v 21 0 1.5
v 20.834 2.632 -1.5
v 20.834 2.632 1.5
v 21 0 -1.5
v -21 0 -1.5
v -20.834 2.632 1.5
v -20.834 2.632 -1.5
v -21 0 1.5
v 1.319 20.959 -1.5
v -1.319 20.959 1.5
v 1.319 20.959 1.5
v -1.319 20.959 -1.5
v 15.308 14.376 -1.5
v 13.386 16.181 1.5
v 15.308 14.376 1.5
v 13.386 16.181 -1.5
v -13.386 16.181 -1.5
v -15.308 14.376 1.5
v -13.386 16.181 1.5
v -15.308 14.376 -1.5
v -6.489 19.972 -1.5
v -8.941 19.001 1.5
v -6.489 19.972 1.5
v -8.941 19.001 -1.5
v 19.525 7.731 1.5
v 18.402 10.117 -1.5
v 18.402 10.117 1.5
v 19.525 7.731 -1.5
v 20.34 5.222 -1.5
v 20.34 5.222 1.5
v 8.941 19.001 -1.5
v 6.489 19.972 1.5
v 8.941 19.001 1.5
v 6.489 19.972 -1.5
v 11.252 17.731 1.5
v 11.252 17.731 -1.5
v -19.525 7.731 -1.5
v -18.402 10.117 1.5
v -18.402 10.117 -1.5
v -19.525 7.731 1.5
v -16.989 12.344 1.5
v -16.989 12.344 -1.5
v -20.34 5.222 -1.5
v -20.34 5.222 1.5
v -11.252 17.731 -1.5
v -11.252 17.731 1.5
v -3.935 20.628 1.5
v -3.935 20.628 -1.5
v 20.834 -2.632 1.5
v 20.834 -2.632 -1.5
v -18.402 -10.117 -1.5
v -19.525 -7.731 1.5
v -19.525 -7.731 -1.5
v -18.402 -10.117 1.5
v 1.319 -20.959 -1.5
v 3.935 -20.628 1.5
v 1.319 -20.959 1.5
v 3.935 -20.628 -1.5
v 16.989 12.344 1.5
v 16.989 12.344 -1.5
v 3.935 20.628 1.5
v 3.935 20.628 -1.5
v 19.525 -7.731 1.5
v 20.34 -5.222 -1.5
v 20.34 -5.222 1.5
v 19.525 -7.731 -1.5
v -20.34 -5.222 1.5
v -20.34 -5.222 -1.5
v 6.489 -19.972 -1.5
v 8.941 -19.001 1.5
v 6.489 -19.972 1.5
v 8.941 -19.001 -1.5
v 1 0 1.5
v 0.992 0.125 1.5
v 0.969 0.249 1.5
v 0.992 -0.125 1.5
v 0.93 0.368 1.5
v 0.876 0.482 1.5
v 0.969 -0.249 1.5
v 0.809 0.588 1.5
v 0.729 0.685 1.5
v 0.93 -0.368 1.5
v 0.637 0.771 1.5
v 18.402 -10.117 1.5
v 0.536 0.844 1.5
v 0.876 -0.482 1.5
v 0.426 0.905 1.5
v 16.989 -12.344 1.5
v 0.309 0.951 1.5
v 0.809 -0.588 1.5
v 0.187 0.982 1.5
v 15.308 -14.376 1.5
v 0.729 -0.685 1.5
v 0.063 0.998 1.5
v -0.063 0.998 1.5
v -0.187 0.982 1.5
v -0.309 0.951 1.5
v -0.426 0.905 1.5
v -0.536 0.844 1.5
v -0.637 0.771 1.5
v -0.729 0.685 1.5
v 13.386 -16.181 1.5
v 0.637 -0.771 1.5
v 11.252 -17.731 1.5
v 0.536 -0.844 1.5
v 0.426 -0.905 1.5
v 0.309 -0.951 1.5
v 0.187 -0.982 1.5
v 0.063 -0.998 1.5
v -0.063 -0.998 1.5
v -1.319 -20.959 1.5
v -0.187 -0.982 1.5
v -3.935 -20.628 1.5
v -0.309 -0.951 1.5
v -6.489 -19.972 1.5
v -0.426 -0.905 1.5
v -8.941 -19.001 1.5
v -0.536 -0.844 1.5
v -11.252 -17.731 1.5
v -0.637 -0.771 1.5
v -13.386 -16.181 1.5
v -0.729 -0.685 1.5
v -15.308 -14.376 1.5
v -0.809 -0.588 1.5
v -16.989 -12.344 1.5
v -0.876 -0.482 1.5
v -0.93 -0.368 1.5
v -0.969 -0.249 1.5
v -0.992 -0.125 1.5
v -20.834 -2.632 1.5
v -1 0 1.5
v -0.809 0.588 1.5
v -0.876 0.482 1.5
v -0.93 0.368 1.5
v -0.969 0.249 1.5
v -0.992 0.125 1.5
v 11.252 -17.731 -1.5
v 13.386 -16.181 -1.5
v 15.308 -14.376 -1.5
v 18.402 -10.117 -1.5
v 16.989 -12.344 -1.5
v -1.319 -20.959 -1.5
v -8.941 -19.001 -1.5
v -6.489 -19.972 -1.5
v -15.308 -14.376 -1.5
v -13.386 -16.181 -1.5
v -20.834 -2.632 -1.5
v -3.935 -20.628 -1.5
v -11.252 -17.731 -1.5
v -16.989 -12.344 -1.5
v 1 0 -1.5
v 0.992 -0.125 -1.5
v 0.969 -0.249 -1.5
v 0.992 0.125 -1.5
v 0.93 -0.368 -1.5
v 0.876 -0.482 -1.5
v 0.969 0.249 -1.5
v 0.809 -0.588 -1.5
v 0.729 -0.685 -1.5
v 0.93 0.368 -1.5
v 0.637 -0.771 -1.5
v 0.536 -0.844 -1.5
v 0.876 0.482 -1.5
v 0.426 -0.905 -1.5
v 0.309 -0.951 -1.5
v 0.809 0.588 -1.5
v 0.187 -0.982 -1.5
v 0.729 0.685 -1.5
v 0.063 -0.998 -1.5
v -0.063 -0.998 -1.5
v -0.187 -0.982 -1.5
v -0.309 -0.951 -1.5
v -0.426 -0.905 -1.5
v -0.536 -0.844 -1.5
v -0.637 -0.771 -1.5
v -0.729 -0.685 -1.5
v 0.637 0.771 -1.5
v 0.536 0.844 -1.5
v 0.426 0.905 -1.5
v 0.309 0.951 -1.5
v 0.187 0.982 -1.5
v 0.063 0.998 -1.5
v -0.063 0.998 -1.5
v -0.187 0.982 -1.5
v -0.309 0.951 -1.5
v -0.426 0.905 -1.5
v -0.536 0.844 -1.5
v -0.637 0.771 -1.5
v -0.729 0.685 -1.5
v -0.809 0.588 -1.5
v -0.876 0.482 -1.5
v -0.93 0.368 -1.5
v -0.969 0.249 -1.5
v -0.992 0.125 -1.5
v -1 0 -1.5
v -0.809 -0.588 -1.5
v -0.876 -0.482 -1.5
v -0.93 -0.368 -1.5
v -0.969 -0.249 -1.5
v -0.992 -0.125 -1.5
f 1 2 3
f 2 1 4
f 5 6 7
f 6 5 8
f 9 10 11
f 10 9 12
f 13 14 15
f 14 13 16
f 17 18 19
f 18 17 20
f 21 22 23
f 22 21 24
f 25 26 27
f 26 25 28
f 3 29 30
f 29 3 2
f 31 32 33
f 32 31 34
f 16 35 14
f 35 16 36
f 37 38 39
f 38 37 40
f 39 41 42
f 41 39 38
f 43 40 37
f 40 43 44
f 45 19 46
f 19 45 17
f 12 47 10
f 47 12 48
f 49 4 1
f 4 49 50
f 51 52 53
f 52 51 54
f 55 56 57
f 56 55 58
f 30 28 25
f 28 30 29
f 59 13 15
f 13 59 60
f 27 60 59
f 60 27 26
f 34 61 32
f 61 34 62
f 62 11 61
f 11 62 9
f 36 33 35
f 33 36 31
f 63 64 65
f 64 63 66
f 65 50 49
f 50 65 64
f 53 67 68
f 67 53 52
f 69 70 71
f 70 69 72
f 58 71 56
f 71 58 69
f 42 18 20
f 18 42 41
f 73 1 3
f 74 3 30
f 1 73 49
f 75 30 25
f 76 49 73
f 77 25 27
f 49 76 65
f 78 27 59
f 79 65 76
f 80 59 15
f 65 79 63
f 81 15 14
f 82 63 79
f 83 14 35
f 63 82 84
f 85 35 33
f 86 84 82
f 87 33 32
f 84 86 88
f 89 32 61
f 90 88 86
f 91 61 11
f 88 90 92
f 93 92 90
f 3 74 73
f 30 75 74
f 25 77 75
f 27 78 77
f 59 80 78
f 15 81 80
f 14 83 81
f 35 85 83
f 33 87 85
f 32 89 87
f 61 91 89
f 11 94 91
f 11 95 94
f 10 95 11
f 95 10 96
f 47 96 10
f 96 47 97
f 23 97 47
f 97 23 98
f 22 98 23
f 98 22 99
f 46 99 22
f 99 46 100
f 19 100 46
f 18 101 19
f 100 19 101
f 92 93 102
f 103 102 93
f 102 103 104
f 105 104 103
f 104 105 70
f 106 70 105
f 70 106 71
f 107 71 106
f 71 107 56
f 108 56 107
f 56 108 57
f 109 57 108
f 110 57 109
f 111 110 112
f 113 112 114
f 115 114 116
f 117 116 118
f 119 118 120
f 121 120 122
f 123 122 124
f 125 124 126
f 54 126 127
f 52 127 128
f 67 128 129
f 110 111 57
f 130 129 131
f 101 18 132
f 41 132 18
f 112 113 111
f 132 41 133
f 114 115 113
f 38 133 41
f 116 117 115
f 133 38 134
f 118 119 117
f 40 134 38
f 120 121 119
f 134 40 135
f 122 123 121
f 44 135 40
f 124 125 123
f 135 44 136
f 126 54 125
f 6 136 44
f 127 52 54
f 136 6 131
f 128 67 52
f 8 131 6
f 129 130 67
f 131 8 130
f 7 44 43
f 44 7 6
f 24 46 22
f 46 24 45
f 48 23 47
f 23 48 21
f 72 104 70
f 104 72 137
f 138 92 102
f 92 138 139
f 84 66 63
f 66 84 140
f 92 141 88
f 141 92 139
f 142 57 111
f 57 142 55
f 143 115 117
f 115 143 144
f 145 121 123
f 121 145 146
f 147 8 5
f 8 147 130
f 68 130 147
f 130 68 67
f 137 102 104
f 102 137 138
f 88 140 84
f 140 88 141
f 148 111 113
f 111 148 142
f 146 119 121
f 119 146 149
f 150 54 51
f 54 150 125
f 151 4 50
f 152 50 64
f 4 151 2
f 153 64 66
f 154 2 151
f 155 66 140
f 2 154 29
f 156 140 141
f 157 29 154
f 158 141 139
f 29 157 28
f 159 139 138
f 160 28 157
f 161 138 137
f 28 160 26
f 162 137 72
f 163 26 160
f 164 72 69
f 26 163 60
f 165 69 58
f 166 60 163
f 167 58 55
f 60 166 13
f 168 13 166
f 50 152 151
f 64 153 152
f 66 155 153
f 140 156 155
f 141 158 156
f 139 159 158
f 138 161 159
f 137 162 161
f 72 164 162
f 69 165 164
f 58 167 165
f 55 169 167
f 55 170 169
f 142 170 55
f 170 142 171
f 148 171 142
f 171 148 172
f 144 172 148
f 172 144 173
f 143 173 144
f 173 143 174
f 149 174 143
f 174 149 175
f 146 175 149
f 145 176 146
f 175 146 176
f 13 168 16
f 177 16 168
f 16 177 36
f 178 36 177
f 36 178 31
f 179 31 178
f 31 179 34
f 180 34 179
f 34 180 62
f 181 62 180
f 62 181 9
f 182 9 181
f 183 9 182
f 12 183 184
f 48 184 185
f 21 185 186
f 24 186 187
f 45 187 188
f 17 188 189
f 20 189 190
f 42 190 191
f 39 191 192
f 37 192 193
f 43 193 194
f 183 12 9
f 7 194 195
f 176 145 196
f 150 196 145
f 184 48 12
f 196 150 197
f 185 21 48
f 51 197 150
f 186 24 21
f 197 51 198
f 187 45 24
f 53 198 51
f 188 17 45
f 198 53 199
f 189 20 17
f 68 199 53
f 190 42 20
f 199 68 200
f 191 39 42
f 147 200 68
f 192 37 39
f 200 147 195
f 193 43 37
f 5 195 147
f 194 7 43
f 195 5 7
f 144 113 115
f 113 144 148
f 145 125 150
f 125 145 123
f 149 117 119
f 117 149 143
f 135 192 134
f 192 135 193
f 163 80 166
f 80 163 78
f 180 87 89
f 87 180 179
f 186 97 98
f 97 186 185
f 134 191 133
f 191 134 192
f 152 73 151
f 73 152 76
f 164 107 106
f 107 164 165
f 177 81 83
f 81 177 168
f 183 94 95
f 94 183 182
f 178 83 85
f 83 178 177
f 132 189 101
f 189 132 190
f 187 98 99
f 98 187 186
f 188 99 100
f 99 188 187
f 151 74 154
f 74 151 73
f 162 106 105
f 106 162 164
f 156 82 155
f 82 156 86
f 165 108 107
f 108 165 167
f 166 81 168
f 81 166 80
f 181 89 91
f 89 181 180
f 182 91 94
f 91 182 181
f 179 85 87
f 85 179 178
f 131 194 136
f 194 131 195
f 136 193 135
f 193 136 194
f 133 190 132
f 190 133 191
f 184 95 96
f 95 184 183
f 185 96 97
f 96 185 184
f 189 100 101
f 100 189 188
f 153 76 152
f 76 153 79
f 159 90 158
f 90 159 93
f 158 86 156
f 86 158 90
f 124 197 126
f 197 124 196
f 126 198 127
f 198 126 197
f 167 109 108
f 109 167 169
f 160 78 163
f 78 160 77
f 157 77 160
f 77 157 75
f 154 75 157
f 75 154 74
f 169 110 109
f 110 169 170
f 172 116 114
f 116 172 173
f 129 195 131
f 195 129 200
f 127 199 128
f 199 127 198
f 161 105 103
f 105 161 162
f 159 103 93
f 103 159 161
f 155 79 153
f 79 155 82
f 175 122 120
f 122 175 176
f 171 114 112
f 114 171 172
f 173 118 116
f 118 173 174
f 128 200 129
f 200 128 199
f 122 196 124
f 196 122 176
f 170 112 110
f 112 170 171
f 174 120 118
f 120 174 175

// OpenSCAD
$fn = 50;


difference() {
	union() {
		translate(v = [0, 0, -1.5000000000]) {
			cylinder(h = 3, r = 21.0000000000);
		}
	}
	union() {
		translate(v = [0, 0, -100.0000000000]) {
			cylinder(h = 200, r = 1.0000000000);
		}
	}
}
